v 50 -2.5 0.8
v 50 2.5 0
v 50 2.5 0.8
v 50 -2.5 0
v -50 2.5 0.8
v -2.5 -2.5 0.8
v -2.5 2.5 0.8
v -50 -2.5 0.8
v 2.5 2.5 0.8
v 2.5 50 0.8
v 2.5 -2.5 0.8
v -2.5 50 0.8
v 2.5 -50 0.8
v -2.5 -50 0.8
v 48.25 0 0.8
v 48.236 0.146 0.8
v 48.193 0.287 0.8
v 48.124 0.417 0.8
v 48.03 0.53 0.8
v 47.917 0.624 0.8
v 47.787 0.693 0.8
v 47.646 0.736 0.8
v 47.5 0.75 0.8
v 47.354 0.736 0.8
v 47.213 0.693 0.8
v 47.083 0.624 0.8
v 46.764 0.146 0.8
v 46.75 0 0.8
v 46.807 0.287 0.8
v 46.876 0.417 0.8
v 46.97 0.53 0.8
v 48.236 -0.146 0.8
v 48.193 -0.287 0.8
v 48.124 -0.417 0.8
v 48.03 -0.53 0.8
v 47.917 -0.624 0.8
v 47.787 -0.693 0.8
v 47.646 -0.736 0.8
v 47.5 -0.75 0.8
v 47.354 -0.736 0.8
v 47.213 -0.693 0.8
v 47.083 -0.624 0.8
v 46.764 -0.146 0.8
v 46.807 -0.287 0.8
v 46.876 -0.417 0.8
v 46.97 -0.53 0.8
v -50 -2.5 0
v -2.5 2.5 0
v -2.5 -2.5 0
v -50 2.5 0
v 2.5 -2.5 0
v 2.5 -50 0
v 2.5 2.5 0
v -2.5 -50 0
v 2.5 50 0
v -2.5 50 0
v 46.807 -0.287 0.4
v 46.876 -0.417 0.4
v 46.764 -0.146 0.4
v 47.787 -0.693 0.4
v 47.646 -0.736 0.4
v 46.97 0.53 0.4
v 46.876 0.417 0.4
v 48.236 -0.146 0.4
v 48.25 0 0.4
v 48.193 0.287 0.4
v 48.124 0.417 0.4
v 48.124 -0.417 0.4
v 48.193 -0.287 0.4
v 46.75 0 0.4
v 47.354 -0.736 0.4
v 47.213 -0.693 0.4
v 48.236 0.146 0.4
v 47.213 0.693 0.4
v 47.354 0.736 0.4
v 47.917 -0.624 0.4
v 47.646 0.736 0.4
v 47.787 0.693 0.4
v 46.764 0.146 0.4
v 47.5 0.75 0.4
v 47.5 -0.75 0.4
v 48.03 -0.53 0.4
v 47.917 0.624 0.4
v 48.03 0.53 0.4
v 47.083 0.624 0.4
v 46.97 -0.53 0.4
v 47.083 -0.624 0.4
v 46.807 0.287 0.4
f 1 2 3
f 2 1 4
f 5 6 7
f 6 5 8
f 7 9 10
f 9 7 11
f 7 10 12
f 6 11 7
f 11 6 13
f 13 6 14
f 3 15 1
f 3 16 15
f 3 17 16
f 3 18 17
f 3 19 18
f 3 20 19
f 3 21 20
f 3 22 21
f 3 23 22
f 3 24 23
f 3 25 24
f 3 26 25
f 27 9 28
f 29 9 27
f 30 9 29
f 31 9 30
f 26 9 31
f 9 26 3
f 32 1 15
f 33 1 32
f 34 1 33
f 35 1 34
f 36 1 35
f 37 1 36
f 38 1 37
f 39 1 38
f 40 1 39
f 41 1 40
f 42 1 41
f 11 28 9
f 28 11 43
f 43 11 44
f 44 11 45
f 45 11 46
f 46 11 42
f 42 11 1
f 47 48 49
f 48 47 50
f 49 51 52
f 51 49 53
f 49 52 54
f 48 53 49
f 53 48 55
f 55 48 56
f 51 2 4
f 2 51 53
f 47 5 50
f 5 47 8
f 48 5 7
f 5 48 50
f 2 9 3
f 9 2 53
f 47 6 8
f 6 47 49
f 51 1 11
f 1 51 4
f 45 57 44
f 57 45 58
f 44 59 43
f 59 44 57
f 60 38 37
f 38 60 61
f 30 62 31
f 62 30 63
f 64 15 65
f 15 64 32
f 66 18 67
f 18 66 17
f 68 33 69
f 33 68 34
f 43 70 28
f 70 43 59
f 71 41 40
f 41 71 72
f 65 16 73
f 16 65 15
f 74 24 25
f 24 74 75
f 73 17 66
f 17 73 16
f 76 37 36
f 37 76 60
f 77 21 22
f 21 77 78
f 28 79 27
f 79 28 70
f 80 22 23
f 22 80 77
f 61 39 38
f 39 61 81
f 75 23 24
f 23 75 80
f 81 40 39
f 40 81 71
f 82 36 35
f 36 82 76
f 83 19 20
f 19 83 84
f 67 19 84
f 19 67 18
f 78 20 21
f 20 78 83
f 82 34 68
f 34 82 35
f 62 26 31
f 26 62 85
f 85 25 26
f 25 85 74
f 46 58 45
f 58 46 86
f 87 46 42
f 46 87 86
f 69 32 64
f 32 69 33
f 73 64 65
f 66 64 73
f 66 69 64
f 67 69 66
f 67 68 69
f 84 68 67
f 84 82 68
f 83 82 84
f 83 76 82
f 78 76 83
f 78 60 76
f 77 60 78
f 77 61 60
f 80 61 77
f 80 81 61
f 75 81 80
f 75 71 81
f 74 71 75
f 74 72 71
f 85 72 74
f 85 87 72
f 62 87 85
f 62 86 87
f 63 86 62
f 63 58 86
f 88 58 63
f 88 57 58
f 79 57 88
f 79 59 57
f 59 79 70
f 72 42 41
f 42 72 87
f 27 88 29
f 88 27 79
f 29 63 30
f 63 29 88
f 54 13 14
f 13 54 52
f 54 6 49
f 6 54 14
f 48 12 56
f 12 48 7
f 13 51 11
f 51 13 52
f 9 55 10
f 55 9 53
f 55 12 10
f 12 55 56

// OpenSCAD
// file: ../../lib/Calibration.scad
$fn = 64;

min_print_spacing = 0.46 * 3;
font = "Open Sans:style=bold";
text_size = 4.5;

function HexWidthToDiameter(width) = width * 2 / sqrt(3);
function HexDiameterToWidth(diameter) = diameter / 2 * sqrt(3);

module HolePattern(hex=false, nominal_diameter=3, cmin=0, cmax=0.6, n=13) {
  // dx = nominal_diameter + 2 * cmax;
  max_diameter = nominal_diameter + 2 * cmax;
  dist = max_diameter / sqrt(2) + min_print_spacing ;
  p = max_diameter / 2 + min_print_spacing;
  px = 2 * p + text_size;
  py = p;
  h = 3;

  W = 2*px+dist*(n-1);
  H = 2*py+dist;

  function lerp(f, a, b) = a + (b - a) * f;
  function steps(a, b, s) = ceil((b - a) / s);

  difference() {
    union() {
      cube([W, H, h]);

      translate([0, H/2, h]) {
        translate([p, 0, 0])
        rotate([0, 0, 90])
        CalibrationText(str(nominal_diameter+cmin));

        translate([W-p, 0, 0])
        rotate([0, 0, 90])
        CalibrationText(str(nominal_diameter+cmax));
      }
    }

    translate([0, 0, -1])
    for(i=[0:n-1])
    translate([i*dist+px, py+((i%2) * dist), 0])
    cylinder(d=nominal_diameter+2*lerp(i/(n-1), cmin, cmax), h=h+2, $fn=hex ? 6 : $fn);
  }
}

module CalibrationText(text, size=text_size) {
  linear_extrude(0.5, convexity=4)
  offset(r=0.1)
  text(text, size=size, halign="center", valign="center", font=font, spacing=1.0);
}

module HolePatternM3Screw() {
  HolePattern(hex=false, nominal_diameter=3, cmin=0, cmax=0.6, n=13);
}

function round_to(x, digits) = round(x*10^digits) / 10^digits;

module HolePatternM3HexNut() {
  d = round_to(HexWidthToDiameter(5.5), 2);
  HolePattern(hex=true, nominal_diameter=d, cmin=-0.2, cmax=0.2, n=9);
}
// main file
// The object generated by this file can be used to print a calibration cross
// of known target size, in order to compute the correct steps/mm values for
// the printer. The positive x-axis arm has a little mark in it, make sure to
// align it correctly in your slicer or remember the alignment when you take it
// off your print bed.
//
// Please print this and calibrate your printer step settings, such that all
// dimensions print correctly, before using any of the other calibration tools.
// This object does not measure your z distance (that would print way too
// long), but it is much easier to manually move your print head along z
// through G-code and measure the resulting height change, compared to good
// horizontal measurements.

use <../../lib/Calibration.scad>

length = 100;
width = 5;
height = 0.8;

union() {
  difference() {
    translate([0, 0, height/2])
    cube([length, width, height], true);

    translate([length/2 - width/2, 0, height])
    cylinder(d=min(1.5, width/2), h=height, center=true, $fn=32);
  }

  rotate([0, 0, 90])
  translate([0, 0, height/2])
  cube([length, width, height], true);
}
